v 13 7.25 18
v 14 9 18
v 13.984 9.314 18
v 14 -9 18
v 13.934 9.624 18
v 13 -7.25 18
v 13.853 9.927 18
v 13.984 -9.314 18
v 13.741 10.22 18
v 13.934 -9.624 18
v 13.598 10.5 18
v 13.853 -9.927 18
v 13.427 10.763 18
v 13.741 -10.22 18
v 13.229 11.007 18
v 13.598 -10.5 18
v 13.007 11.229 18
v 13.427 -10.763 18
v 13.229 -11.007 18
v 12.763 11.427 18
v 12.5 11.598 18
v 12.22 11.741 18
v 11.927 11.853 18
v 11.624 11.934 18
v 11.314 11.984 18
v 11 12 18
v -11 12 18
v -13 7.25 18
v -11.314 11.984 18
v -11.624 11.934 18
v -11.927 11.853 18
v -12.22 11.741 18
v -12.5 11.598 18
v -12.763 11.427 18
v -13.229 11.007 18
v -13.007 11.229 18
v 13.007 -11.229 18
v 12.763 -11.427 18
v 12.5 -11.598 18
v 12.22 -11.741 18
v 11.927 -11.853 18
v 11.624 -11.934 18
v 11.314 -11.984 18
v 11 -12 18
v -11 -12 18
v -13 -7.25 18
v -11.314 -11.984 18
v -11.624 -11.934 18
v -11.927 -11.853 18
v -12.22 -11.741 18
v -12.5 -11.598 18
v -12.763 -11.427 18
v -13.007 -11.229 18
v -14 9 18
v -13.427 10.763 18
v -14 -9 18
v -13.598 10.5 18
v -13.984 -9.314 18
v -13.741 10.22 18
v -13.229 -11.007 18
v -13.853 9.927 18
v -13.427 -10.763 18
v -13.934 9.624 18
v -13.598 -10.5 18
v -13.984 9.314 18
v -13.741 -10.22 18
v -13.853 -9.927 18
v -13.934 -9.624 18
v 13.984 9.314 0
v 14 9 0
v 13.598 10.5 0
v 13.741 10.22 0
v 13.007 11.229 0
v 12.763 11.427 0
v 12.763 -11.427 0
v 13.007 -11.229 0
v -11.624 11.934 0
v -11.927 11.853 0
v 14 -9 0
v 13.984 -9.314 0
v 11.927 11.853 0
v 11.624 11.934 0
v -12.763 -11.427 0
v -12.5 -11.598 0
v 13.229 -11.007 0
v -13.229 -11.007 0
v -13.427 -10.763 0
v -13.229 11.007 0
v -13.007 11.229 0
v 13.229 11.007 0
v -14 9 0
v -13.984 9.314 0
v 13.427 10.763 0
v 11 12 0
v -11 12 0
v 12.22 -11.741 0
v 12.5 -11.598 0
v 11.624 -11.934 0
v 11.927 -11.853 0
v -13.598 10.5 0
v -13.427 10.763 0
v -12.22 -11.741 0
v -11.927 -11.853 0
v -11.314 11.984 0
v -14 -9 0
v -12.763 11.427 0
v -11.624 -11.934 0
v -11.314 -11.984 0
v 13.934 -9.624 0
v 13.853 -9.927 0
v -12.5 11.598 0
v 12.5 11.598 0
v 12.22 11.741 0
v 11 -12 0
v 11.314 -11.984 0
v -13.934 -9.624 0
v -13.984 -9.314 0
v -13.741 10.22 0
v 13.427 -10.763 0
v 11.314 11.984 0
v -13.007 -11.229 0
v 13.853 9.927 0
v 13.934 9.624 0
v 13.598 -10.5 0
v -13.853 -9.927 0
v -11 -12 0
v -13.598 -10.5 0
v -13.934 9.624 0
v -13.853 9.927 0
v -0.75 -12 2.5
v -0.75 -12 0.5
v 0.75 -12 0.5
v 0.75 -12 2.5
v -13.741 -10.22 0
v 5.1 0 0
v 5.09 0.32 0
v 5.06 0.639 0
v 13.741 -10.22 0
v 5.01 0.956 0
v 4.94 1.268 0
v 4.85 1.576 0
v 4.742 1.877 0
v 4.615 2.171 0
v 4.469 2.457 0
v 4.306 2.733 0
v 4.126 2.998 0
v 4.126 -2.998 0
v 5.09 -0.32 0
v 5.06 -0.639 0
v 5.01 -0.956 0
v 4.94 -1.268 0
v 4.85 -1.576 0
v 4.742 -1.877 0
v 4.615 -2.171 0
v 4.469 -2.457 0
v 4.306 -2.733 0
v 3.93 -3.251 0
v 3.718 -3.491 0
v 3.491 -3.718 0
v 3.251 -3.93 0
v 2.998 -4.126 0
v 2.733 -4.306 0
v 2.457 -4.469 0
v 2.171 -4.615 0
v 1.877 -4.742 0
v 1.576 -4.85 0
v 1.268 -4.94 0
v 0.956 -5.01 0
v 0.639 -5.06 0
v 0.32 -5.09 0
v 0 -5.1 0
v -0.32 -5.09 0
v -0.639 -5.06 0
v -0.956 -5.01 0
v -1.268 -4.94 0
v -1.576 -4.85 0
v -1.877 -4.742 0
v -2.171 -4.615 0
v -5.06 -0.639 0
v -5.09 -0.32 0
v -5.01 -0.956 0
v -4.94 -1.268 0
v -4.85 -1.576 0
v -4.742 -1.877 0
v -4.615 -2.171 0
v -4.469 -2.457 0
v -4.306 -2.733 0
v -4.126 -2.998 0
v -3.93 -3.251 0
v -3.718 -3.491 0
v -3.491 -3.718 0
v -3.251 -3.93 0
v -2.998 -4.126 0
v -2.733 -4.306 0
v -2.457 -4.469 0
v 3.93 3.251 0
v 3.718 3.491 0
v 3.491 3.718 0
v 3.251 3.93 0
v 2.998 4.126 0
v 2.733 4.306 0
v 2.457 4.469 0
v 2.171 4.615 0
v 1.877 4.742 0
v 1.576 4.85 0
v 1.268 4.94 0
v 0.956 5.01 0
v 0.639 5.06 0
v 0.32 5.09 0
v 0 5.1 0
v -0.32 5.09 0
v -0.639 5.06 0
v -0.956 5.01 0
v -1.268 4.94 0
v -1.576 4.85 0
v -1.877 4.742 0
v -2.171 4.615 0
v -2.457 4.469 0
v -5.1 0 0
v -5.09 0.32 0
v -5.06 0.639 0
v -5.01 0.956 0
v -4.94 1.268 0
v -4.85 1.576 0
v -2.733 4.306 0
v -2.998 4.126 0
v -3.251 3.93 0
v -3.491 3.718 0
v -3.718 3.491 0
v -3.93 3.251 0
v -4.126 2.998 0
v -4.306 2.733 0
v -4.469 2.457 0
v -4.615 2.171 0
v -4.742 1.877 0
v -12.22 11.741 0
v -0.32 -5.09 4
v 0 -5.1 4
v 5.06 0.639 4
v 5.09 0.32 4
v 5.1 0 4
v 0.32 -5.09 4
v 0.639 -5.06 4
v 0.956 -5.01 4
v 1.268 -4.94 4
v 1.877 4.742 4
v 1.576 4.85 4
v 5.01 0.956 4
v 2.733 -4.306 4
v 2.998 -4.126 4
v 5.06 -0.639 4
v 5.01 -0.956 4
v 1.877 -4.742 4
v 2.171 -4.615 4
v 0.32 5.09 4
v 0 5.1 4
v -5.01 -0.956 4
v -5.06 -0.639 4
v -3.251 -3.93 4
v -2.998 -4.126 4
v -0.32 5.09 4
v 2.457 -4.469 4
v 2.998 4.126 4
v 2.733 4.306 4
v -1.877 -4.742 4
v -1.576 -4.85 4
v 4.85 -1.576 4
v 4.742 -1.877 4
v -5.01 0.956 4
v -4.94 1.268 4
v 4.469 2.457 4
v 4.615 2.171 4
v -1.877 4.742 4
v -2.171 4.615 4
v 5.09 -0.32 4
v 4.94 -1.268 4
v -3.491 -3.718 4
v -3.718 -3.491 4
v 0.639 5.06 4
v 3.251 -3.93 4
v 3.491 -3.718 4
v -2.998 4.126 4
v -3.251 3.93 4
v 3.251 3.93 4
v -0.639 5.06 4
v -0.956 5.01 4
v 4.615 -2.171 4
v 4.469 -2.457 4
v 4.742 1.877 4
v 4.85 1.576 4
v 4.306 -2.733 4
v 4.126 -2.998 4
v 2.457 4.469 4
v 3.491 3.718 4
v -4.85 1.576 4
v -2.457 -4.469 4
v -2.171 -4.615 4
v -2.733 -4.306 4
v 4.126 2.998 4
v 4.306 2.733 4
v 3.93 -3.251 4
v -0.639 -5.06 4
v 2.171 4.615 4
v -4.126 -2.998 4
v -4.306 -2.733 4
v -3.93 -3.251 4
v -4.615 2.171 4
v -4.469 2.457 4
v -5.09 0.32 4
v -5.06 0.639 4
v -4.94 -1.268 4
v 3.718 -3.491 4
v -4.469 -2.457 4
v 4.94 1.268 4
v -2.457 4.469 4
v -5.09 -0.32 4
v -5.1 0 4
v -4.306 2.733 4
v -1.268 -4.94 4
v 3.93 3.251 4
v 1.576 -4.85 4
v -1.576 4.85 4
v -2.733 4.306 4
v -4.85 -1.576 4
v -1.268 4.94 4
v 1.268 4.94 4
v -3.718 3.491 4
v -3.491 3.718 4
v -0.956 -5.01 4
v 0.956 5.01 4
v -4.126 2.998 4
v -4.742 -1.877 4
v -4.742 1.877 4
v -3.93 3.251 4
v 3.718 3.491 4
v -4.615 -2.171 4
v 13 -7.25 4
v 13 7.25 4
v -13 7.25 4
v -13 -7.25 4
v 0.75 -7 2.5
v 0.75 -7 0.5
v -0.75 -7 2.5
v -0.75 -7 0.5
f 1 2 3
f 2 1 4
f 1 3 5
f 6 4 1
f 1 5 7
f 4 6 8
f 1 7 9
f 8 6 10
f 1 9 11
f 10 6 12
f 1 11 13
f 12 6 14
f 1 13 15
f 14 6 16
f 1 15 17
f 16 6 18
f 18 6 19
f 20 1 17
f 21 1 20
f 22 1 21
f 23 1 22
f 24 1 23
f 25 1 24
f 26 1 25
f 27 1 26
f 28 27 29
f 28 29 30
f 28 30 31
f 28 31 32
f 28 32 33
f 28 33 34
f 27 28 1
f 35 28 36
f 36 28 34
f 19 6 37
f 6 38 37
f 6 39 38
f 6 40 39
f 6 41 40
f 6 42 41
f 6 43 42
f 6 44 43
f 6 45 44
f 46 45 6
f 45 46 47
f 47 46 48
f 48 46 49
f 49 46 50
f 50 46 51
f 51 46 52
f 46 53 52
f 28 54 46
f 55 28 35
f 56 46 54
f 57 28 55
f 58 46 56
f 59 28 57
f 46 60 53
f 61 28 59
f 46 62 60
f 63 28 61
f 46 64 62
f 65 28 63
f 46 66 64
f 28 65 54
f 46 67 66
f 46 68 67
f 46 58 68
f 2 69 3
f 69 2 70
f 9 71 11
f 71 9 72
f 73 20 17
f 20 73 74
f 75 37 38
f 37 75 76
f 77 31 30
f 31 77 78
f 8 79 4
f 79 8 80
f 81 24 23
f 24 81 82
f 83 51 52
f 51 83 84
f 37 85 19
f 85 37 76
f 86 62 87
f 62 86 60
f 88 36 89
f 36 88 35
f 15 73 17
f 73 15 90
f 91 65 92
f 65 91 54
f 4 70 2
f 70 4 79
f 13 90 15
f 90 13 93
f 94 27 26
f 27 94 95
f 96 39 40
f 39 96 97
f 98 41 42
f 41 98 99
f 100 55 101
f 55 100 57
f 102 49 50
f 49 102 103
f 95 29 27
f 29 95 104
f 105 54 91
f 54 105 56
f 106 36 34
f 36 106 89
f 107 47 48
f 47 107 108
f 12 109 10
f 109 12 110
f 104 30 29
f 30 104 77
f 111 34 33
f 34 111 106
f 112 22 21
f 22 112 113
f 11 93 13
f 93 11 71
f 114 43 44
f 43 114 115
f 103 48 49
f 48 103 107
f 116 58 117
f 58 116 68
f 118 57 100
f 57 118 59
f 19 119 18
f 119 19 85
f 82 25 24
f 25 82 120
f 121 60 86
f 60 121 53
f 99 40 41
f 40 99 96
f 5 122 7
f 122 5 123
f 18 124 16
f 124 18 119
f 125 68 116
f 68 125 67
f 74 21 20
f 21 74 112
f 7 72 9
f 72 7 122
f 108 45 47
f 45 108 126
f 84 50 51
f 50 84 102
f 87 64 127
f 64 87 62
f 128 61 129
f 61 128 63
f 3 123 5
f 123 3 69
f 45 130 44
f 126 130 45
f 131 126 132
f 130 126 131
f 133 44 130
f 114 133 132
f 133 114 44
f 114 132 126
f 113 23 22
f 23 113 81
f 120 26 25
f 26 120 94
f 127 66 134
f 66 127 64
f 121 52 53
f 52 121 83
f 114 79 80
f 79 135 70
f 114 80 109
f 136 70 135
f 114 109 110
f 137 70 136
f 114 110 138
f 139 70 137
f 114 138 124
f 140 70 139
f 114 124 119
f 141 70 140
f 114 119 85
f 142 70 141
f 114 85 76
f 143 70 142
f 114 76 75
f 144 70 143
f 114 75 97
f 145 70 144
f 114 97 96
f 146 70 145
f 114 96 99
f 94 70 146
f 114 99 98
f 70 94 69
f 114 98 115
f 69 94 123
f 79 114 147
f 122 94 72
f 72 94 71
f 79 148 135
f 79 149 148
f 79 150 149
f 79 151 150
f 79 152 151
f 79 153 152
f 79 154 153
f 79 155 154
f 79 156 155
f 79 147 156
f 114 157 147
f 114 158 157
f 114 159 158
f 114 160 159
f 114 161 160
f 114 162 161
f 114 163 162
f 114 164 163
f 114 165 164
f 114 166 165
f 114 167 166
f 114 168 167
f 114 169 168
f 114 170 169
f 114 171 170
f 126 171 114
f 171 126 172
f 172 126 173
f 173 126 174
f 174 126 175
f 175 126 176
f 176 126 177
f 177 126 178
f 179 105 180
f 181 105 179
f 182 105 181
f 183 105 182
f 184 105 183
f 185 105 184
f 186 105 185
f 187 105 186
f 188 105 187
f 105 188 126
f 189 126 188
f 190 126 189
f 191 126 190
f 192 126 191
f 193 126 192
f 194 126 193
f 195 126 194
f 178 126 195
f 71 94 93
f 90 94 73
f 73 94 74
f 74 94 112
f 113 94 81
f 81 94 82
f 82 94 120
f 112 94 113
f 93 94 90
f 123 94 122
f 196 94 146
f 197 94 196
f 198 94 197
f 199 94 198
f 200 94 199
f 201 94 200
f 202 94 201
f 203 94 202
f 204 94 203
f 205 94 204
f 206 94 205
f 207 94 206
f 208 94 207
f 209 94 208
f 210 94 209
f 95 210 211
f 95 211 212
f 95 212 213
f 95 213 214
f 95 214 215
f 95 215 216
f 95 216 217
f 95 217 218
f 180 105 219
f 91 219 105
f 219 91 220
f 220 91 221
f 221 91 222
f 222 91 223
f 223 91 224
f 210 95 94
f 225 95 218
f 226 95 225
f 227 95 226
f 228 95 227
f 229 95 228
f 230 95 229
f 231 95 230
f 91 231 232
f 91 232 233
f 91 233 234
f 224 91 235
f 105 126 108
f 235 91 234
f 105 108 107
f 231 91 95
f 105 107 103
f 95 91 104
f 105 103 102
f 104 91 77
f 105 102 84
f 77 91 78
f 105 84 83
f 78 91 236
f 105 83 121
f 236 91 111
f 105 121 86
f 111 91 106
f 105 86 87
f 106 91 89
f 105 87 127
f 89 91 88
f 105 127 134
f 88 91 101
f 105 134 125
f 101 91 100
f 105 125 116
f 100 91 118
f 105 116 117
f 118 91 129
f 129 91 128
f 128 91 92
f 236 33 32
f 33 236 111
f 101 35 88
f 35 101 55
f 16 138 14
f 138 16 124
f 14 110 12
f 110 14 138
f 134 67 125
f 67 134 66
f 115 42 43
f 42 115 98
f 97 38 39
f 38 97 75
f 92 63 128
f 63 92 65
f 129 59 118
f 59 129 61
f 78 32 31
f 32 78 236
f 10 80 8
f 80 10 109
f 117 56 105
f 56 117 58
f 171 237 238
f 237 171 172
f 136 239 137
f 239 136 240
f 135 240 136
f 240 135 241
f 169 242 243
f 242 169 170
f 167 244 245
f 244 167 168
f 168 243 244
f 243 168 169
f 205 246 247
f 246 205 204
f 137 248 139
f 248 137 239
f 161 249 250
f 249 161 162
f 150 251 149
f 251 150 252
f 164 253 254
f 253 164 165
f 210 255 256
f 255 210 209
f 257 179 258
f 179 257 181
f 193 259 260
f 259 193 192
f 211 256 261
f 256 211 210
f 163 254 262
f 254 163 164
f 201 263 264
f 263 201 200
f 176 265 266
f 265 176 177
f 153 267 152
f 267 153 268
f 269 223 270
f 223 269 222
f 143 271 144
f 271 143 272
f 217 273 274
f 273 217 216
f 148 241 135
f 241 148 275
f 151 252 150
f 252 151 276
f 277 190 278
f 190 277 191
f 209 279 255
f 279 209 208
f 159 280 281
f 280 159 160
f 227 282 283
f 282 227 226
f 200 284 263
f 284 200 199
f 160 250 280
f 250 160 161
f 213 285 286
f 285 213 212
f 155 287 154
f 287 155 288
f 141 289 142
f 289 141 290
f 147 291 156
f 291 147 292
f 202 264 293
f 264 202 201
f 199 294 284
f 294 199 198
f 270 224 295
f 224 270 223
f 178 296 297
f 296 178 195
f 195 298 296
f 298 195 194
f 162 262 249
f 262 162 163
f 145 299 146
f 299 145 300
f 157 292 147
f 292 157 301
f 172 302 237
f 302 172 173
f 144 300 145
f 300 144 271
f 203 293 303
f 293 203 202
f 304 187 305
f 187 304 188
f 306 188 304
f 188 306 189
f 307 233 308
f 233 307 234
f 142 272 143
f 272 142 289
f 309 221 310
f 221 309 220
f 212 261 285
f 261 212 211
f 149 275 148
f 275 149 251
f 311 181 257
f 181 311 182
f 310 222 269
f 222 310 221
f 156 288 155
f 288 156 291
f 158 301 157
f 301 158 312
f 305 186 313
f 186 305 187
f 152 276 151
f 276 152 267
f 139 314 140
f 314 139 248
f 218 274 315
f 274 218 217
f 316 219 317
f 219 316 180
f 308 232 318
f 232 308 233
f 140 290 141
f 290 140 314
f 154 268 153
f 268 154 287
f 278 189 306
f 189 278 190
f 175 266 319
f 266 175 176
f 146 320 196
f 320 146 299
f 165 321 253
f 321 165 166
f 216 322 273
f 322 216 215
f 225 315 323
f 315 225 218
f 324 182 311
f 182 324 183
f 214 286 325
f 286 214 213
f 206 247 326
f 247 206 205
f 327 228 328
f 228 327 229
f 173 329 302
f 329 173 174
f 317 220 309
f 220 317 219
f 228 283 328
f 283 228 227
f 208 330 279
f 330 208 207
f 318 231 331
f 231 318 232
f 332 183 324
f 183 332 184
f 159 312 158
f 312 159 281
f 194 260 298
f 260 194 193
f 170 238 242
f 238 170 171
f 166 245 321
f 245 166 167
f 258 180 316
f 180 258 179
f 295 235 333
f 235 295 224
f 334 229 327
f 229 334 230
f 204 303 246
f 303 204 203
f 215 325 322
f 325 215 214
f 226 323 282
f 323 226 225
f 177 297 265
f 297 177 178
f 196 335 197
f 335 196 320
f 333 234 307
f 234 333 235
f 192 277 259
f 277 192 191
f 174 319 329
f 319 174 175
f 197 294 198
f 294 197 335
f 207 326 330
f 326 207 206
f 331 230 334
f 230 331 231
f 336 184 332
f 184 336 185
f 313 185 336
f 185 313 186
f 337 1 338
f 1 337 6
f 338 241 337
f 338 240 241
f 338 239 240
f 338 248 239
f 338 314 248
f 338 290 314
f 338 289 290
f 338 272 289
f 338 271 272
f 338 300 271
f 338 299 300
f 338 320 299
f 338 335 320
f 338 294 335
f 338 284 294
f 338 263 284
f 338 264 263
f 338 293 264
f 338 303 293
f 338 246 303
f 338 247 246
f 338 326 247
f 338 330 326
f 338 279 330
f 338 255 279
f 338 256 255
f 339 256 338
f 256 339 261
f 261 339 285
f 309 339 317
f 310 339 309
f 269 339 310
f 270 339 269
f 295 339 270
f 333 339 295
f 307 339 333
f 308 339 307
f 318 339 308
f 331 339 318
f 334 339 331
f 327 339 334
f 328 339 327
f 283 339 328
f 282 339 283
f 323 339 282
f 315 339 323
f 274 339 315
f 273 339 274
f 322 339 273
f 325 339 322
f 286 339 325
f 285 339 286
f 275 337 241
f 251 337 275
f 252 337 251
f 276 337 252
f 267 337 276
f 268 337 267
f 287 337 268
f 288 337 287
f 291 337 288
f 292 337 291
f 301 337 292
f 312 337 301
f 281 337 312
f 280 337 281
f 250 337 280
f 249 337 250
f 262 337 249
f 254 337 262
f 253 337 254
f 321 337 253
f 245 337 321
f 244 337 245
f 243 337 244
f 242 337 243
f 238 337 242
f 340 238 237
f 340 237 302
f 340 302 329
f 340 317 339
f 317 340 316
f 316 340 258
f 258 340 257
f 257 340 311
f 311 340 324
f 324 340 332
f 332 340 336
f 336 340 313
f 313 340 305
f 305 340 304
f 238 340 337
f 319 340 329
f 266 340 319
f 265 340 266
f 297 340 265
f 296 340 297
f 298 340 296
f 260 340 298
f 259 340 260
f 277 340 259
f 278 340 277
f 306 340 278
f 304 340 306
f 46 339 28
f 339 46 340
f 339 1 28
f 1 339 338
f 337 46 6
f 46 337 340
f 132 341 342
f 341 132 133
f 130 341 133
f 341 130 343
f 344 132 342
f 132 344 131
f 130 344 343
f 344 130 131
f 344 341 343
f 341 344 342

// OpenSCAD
// V52-R "Ergo-Snap" - Michigan Protocol Optimized
// Optimized for 10mm x 3mm LRA with AWG 30 leads

module v52_right() {
    difference() {
        // 1. THE ERGONOMIC BODY
        // Created with a hull of cylinders to remove all sharp "square" corners
        hull() {
            translate([-11, -9, 0])  cylinder(r=3, h=18, $fn=60); // Rounded Base
            translate([11, -9, 0])   cylinder(r=3, h=18, $fn=60);
            translate([-11, 9, 0])   cylinder(r=3, h=18, $fn=60);
            translate([11, 9, 0])    cylinder(r=3, h=18, $fn=60);
        }

        // 2. THE MOTOR "OPENING" (Skin-Side Through-Hole)
        // This ensures the LRA touches the mastoid bone directly.
        // 10.2mm diameter = snug fit for 10.0mm motor.
        translate([0, 0, -1]) 
            cylinder(d=10.2, h=8, $fn=100);

        // 3. BATTERY POD SLOT (The Snap-Clip)
        // This hallows out the middle so it "Saddles" over the headphone arm.
        // Adjust the '14.5' value if your headphone battery pod is wider.
        translate([-13, -7.25, 4]) 
            cube([26, 14.5, 15]); 

        // 4. WIRE TRENCH (The AWG 30 Exit)
        // Protects the fragile leads from the Vybronics Rev A/1 update.
        translate([0, -12, 1.5]) 
            cube([1.5, 10, 2], center=true);

        // 5. THE TACTILE "R" IDENTIFIER
        // Embossed (Subtracted) 1.2mm deep for blind orientation.
        translate([0, 0, 17]) 
            linear_extrude(height = 1.2) 
                text("R", size=8, font="Arial:style=Bold", halign="center", valign="center");
    }
}

v52_right();
